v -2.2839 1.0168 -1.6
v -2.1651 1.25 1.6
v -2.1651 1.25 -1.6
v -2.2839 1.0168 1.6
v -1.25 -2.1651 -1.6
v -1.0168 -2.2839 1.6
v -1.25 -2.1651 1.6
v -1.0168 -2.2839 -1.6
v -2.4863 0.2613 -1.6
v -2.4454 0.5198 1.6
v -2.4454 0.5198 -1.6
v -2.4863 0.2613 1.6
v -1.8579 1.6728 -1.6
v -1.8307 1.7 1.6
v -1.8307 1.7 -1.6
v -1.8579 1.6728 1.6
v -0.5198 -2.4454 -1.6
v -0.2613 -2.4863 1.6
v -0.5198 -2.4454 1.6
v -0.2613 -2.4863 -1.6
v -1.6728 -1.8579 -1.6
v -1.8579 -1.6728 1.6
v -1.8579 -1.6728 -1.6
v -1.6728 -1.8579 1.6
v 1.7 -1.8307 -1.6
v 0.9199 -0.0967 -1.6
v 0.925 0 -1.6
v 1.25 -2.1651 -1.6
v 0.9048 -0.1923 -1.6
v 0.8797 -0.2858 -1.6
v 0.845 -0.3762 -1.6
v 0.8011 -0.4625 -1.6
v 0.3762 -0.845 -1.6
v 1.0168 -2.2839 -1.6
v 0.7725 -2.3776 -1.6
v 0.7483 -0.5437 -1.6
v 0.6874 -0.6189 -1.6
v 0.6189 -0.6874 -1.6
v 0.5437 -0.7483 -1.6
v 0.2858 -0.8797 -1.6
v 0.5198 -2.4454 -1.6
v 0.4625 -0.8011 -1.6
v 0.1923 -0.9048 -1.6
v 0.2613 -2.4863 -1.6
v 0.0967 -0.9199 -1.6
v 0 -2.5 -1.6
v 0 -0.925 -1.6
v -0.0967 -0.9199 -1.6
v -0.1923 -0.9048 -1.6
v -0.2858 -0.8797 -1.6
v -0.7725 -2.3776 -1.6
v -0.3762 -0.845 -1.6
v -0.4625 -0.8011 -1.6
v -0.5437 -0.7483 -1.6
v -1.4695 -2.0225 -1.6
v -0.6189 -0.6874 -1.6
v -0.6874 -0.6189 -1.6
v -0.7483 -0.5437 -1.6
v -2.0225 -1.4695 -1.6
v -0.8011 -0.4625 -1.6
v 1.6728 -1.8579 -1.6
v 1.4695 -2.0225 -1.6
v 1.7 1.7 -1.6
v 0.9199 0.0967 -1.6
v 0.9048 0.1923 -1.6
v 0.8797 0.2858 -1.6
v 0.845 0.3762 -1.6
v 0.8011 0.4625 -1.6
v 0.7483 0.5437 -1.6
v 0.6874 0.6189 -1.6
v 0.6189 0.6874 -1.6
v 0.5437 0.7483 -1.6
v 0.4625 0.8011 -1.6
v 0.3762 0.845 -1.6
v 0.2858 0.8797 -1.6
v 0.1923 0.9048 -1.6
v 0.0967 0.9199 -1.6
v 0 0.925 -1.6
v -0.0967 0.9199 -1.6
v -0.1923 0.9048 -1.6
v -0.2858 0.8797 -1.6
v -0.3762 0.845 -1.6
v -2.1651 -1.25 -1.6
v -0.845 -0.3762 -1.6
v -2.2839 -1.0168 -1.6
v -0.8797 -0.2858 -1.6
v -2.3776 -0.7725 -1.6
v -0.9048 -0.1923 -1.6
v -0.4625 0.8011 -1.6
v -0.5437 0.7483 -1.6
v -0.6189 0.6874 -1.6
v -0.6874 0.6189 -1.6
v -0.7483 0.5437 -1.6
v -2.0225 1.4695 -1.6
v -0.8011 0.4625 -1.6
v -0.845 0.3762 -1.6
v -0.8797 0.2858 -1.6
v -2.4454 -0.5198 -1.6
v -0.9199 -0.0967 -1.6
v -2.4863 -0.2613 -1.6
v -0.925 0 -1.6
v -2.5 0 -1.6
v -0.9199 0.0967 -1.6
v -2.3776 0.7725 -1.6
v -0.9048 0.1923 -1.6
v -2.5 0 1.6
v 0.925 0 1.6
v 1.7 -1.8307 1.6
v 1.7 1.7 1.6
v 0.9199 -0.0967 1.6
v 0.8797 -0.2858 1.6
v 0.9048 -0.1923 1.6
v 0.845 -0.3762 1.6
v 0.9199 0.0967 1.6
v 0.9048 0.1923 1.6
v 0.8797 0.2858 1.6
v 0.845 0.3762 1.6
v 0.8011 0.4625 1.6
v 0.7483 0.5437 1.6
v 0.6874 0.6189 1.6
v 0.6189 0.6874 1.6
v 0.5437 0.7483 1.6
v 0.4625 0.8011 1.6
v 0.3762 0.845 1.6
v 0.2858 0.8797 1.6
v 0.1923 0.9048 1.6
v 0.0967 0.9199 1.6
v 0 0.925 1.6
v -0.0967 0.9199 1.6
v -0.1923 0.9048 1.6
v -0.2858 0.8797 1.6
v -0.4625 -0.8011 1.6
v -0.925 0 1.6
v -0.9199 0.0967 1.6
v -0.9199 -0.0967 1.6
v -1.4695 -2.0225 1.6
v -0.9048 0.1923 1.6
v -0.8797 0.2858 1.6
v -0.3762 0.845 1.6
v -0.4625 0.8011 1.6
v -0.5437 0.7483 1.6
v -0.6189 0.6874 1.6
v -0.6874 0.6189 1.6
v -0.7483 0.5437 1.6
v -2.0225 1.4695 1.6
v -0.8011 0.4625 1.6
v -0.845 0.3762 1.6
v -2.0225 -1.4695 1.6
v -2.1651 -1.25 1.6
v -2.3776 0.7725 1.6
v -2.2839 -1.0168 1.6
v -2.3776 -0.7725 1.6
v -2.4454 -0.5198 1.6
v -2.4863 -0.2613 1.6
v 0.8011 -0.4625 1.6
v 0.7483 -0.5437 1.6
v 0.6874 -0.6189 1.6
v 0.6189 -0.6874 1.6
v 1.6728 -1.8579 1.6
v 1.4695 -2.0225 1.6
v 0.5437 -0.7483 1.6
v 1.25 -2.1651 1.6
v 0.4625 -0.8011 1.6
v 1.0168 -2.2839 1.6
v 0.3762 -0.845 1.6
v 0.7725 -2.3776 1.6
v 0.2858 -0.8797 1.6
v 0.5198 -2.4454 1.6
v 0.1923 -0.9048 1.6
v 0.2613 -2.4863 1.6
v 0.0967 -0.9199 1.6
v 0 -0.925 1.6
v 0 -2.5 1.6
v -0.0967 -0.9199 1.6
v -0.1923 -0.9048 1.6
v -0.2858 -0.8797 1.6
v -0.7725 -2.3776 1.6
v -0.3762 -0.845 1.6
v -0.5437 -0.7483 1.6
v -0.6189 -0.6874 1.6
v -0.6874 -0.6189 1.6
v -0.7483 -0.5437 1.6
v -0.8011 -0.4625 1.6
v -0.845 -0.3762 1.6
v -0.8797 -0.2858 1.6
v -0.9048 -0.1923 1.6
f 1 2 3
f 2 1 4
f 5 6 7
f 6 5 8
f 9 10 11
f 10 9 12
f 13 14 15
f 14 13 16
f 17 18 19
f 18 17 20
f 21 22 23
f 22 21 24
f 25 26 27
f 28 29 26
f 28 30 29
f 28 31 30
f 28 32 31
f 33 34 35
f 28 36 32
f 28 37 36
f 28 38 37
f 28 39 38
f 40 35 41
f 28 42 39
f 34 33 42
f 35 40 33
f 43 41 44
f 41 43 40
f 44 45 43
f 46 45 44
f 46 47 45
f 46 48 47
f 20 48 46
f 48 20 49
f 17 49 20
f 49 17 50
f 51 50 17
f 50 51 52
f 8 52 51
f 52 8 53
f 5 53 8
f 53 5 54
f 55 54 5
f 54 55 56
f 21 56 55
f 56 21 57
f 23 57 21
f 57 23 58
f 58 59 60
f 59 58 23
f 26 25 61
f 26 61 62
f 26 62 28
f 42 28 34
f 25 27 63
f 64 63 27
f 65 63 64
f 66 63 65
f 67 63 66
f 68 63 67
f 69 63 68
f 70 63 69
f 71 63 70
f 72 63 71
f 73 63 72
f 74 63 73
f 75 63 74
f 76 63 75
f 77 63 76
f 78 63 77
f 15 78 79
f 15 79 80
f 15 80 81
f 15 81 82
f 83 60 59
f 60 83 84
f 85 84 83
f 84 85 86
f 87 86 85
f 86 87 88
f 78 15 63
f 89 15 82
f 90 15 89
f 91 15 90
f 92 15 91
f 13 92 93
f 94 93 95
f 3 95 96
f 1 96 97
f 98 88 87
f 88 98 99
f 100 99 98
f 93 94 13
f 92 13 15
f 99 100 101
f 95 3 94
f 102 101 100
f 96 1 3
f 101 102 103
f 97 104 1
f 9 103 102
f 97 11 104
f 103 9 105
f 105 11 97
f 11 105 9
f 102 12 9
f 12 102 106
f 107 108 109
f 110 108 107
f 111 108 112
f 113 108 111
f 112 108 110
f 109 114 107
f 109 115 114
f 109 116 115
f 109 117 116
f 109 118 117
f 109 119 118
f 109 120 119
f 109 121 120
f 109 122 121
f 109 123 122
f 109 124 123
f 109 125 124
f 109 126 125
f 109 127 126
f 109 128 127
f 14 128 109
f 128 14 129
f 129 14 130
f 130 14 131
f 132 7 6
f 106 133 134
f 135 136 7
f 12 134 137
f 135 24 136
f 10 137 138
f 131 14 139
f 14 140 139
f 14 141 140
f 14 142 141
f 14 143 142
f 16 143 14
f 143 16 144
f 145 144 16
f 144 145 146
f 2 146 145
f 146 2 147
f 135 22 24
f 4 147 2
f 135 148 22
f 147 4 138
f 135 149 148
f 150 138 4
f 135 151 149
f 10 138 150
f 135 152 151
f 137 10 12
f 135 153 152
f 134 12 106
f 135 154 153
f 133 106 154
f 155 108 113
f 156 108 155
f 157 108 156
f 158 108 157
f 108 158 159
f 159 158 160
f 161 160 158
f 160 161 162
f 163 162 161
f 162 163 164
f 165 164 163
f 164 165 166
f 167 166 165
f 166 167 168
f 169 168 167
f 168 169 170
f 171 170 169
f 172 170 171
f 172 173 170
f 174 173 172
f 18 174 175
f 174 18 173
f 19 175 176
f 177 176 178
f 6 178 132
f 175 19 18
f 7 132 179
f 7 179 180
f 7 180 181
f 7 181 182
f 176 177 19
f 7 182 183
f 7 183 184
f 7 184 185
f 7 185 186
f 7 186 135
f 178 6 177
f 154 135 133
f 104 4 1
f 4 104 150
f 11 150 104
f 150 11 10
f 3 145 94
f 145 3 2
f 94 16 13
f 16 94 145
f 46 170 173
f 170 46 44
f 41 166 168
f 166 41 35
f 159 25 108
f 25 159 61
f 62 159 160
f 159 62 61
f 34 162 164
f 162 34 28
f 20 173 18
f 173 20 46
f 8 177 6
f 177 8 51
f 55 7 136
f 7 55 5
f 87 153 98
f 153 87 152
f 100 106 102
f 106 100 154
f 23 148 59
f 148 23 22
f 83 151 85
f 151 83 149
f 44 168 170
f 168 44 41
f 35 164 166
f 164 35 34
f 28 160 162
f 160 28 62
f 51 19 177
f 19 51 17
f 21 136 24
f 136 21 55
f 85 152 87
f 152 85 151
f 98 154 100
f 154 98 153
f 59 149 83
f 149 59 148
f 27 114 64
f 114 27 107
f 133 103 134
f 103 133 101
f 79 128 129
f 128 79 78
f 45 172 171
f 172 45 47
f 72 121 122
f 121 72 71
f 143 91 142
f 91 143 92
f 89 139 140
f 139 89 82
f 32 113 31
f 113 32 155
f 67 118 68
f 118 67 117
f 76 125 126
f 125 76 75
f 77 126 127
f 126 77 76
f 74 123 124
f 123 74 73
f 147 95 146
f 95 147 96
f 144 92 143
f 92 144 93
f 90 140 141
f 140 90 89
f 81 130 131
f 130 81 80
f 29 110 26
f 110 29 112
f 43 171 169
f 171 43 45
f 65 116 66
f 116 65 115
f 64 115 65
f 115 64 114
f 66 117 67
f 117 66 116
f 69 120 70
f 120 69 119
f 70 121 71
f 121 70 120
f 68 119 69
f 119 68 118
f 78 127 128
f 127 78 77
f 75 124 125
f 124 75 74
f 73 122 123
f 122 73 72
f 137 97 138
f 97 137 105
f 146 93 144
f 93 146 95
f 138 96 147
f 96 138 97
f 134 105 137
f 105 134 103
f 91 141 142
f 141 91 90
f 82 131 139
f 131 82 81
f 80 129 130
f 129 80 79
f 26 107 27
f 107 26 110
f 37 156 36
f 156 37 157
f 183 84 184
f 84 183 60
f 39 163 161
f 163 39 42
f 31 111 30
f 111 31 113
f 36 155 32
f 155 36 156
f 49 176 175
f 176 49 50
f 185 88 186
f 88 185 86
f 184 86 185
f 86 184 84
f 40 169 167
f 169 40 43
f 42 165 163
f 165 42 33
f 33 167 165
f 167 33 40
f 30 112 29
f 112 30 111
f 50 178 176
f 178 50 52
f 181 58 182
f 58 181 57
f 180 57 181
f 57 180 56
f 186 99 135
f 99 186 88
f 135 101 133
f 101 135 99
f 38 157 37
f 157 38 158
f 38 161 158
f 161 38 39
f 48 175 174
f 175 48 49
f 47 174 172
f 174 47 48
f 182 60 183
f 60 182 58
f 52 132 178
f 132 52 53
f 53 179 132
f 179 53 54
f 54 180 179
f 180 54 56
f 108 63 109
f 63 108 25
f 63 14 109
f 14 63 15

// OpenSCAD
$fn= 60;

difference()
{

cylinder (h=3.2,d=5,center=true);

cylinder (h=3.2,d=1.85,center=true);

x=0.8;
    
translate([5+2.5-x,0,0]) cube(10,center=true);
translate([0,5+2.5-x,0]) cube(10,center=true);

}
